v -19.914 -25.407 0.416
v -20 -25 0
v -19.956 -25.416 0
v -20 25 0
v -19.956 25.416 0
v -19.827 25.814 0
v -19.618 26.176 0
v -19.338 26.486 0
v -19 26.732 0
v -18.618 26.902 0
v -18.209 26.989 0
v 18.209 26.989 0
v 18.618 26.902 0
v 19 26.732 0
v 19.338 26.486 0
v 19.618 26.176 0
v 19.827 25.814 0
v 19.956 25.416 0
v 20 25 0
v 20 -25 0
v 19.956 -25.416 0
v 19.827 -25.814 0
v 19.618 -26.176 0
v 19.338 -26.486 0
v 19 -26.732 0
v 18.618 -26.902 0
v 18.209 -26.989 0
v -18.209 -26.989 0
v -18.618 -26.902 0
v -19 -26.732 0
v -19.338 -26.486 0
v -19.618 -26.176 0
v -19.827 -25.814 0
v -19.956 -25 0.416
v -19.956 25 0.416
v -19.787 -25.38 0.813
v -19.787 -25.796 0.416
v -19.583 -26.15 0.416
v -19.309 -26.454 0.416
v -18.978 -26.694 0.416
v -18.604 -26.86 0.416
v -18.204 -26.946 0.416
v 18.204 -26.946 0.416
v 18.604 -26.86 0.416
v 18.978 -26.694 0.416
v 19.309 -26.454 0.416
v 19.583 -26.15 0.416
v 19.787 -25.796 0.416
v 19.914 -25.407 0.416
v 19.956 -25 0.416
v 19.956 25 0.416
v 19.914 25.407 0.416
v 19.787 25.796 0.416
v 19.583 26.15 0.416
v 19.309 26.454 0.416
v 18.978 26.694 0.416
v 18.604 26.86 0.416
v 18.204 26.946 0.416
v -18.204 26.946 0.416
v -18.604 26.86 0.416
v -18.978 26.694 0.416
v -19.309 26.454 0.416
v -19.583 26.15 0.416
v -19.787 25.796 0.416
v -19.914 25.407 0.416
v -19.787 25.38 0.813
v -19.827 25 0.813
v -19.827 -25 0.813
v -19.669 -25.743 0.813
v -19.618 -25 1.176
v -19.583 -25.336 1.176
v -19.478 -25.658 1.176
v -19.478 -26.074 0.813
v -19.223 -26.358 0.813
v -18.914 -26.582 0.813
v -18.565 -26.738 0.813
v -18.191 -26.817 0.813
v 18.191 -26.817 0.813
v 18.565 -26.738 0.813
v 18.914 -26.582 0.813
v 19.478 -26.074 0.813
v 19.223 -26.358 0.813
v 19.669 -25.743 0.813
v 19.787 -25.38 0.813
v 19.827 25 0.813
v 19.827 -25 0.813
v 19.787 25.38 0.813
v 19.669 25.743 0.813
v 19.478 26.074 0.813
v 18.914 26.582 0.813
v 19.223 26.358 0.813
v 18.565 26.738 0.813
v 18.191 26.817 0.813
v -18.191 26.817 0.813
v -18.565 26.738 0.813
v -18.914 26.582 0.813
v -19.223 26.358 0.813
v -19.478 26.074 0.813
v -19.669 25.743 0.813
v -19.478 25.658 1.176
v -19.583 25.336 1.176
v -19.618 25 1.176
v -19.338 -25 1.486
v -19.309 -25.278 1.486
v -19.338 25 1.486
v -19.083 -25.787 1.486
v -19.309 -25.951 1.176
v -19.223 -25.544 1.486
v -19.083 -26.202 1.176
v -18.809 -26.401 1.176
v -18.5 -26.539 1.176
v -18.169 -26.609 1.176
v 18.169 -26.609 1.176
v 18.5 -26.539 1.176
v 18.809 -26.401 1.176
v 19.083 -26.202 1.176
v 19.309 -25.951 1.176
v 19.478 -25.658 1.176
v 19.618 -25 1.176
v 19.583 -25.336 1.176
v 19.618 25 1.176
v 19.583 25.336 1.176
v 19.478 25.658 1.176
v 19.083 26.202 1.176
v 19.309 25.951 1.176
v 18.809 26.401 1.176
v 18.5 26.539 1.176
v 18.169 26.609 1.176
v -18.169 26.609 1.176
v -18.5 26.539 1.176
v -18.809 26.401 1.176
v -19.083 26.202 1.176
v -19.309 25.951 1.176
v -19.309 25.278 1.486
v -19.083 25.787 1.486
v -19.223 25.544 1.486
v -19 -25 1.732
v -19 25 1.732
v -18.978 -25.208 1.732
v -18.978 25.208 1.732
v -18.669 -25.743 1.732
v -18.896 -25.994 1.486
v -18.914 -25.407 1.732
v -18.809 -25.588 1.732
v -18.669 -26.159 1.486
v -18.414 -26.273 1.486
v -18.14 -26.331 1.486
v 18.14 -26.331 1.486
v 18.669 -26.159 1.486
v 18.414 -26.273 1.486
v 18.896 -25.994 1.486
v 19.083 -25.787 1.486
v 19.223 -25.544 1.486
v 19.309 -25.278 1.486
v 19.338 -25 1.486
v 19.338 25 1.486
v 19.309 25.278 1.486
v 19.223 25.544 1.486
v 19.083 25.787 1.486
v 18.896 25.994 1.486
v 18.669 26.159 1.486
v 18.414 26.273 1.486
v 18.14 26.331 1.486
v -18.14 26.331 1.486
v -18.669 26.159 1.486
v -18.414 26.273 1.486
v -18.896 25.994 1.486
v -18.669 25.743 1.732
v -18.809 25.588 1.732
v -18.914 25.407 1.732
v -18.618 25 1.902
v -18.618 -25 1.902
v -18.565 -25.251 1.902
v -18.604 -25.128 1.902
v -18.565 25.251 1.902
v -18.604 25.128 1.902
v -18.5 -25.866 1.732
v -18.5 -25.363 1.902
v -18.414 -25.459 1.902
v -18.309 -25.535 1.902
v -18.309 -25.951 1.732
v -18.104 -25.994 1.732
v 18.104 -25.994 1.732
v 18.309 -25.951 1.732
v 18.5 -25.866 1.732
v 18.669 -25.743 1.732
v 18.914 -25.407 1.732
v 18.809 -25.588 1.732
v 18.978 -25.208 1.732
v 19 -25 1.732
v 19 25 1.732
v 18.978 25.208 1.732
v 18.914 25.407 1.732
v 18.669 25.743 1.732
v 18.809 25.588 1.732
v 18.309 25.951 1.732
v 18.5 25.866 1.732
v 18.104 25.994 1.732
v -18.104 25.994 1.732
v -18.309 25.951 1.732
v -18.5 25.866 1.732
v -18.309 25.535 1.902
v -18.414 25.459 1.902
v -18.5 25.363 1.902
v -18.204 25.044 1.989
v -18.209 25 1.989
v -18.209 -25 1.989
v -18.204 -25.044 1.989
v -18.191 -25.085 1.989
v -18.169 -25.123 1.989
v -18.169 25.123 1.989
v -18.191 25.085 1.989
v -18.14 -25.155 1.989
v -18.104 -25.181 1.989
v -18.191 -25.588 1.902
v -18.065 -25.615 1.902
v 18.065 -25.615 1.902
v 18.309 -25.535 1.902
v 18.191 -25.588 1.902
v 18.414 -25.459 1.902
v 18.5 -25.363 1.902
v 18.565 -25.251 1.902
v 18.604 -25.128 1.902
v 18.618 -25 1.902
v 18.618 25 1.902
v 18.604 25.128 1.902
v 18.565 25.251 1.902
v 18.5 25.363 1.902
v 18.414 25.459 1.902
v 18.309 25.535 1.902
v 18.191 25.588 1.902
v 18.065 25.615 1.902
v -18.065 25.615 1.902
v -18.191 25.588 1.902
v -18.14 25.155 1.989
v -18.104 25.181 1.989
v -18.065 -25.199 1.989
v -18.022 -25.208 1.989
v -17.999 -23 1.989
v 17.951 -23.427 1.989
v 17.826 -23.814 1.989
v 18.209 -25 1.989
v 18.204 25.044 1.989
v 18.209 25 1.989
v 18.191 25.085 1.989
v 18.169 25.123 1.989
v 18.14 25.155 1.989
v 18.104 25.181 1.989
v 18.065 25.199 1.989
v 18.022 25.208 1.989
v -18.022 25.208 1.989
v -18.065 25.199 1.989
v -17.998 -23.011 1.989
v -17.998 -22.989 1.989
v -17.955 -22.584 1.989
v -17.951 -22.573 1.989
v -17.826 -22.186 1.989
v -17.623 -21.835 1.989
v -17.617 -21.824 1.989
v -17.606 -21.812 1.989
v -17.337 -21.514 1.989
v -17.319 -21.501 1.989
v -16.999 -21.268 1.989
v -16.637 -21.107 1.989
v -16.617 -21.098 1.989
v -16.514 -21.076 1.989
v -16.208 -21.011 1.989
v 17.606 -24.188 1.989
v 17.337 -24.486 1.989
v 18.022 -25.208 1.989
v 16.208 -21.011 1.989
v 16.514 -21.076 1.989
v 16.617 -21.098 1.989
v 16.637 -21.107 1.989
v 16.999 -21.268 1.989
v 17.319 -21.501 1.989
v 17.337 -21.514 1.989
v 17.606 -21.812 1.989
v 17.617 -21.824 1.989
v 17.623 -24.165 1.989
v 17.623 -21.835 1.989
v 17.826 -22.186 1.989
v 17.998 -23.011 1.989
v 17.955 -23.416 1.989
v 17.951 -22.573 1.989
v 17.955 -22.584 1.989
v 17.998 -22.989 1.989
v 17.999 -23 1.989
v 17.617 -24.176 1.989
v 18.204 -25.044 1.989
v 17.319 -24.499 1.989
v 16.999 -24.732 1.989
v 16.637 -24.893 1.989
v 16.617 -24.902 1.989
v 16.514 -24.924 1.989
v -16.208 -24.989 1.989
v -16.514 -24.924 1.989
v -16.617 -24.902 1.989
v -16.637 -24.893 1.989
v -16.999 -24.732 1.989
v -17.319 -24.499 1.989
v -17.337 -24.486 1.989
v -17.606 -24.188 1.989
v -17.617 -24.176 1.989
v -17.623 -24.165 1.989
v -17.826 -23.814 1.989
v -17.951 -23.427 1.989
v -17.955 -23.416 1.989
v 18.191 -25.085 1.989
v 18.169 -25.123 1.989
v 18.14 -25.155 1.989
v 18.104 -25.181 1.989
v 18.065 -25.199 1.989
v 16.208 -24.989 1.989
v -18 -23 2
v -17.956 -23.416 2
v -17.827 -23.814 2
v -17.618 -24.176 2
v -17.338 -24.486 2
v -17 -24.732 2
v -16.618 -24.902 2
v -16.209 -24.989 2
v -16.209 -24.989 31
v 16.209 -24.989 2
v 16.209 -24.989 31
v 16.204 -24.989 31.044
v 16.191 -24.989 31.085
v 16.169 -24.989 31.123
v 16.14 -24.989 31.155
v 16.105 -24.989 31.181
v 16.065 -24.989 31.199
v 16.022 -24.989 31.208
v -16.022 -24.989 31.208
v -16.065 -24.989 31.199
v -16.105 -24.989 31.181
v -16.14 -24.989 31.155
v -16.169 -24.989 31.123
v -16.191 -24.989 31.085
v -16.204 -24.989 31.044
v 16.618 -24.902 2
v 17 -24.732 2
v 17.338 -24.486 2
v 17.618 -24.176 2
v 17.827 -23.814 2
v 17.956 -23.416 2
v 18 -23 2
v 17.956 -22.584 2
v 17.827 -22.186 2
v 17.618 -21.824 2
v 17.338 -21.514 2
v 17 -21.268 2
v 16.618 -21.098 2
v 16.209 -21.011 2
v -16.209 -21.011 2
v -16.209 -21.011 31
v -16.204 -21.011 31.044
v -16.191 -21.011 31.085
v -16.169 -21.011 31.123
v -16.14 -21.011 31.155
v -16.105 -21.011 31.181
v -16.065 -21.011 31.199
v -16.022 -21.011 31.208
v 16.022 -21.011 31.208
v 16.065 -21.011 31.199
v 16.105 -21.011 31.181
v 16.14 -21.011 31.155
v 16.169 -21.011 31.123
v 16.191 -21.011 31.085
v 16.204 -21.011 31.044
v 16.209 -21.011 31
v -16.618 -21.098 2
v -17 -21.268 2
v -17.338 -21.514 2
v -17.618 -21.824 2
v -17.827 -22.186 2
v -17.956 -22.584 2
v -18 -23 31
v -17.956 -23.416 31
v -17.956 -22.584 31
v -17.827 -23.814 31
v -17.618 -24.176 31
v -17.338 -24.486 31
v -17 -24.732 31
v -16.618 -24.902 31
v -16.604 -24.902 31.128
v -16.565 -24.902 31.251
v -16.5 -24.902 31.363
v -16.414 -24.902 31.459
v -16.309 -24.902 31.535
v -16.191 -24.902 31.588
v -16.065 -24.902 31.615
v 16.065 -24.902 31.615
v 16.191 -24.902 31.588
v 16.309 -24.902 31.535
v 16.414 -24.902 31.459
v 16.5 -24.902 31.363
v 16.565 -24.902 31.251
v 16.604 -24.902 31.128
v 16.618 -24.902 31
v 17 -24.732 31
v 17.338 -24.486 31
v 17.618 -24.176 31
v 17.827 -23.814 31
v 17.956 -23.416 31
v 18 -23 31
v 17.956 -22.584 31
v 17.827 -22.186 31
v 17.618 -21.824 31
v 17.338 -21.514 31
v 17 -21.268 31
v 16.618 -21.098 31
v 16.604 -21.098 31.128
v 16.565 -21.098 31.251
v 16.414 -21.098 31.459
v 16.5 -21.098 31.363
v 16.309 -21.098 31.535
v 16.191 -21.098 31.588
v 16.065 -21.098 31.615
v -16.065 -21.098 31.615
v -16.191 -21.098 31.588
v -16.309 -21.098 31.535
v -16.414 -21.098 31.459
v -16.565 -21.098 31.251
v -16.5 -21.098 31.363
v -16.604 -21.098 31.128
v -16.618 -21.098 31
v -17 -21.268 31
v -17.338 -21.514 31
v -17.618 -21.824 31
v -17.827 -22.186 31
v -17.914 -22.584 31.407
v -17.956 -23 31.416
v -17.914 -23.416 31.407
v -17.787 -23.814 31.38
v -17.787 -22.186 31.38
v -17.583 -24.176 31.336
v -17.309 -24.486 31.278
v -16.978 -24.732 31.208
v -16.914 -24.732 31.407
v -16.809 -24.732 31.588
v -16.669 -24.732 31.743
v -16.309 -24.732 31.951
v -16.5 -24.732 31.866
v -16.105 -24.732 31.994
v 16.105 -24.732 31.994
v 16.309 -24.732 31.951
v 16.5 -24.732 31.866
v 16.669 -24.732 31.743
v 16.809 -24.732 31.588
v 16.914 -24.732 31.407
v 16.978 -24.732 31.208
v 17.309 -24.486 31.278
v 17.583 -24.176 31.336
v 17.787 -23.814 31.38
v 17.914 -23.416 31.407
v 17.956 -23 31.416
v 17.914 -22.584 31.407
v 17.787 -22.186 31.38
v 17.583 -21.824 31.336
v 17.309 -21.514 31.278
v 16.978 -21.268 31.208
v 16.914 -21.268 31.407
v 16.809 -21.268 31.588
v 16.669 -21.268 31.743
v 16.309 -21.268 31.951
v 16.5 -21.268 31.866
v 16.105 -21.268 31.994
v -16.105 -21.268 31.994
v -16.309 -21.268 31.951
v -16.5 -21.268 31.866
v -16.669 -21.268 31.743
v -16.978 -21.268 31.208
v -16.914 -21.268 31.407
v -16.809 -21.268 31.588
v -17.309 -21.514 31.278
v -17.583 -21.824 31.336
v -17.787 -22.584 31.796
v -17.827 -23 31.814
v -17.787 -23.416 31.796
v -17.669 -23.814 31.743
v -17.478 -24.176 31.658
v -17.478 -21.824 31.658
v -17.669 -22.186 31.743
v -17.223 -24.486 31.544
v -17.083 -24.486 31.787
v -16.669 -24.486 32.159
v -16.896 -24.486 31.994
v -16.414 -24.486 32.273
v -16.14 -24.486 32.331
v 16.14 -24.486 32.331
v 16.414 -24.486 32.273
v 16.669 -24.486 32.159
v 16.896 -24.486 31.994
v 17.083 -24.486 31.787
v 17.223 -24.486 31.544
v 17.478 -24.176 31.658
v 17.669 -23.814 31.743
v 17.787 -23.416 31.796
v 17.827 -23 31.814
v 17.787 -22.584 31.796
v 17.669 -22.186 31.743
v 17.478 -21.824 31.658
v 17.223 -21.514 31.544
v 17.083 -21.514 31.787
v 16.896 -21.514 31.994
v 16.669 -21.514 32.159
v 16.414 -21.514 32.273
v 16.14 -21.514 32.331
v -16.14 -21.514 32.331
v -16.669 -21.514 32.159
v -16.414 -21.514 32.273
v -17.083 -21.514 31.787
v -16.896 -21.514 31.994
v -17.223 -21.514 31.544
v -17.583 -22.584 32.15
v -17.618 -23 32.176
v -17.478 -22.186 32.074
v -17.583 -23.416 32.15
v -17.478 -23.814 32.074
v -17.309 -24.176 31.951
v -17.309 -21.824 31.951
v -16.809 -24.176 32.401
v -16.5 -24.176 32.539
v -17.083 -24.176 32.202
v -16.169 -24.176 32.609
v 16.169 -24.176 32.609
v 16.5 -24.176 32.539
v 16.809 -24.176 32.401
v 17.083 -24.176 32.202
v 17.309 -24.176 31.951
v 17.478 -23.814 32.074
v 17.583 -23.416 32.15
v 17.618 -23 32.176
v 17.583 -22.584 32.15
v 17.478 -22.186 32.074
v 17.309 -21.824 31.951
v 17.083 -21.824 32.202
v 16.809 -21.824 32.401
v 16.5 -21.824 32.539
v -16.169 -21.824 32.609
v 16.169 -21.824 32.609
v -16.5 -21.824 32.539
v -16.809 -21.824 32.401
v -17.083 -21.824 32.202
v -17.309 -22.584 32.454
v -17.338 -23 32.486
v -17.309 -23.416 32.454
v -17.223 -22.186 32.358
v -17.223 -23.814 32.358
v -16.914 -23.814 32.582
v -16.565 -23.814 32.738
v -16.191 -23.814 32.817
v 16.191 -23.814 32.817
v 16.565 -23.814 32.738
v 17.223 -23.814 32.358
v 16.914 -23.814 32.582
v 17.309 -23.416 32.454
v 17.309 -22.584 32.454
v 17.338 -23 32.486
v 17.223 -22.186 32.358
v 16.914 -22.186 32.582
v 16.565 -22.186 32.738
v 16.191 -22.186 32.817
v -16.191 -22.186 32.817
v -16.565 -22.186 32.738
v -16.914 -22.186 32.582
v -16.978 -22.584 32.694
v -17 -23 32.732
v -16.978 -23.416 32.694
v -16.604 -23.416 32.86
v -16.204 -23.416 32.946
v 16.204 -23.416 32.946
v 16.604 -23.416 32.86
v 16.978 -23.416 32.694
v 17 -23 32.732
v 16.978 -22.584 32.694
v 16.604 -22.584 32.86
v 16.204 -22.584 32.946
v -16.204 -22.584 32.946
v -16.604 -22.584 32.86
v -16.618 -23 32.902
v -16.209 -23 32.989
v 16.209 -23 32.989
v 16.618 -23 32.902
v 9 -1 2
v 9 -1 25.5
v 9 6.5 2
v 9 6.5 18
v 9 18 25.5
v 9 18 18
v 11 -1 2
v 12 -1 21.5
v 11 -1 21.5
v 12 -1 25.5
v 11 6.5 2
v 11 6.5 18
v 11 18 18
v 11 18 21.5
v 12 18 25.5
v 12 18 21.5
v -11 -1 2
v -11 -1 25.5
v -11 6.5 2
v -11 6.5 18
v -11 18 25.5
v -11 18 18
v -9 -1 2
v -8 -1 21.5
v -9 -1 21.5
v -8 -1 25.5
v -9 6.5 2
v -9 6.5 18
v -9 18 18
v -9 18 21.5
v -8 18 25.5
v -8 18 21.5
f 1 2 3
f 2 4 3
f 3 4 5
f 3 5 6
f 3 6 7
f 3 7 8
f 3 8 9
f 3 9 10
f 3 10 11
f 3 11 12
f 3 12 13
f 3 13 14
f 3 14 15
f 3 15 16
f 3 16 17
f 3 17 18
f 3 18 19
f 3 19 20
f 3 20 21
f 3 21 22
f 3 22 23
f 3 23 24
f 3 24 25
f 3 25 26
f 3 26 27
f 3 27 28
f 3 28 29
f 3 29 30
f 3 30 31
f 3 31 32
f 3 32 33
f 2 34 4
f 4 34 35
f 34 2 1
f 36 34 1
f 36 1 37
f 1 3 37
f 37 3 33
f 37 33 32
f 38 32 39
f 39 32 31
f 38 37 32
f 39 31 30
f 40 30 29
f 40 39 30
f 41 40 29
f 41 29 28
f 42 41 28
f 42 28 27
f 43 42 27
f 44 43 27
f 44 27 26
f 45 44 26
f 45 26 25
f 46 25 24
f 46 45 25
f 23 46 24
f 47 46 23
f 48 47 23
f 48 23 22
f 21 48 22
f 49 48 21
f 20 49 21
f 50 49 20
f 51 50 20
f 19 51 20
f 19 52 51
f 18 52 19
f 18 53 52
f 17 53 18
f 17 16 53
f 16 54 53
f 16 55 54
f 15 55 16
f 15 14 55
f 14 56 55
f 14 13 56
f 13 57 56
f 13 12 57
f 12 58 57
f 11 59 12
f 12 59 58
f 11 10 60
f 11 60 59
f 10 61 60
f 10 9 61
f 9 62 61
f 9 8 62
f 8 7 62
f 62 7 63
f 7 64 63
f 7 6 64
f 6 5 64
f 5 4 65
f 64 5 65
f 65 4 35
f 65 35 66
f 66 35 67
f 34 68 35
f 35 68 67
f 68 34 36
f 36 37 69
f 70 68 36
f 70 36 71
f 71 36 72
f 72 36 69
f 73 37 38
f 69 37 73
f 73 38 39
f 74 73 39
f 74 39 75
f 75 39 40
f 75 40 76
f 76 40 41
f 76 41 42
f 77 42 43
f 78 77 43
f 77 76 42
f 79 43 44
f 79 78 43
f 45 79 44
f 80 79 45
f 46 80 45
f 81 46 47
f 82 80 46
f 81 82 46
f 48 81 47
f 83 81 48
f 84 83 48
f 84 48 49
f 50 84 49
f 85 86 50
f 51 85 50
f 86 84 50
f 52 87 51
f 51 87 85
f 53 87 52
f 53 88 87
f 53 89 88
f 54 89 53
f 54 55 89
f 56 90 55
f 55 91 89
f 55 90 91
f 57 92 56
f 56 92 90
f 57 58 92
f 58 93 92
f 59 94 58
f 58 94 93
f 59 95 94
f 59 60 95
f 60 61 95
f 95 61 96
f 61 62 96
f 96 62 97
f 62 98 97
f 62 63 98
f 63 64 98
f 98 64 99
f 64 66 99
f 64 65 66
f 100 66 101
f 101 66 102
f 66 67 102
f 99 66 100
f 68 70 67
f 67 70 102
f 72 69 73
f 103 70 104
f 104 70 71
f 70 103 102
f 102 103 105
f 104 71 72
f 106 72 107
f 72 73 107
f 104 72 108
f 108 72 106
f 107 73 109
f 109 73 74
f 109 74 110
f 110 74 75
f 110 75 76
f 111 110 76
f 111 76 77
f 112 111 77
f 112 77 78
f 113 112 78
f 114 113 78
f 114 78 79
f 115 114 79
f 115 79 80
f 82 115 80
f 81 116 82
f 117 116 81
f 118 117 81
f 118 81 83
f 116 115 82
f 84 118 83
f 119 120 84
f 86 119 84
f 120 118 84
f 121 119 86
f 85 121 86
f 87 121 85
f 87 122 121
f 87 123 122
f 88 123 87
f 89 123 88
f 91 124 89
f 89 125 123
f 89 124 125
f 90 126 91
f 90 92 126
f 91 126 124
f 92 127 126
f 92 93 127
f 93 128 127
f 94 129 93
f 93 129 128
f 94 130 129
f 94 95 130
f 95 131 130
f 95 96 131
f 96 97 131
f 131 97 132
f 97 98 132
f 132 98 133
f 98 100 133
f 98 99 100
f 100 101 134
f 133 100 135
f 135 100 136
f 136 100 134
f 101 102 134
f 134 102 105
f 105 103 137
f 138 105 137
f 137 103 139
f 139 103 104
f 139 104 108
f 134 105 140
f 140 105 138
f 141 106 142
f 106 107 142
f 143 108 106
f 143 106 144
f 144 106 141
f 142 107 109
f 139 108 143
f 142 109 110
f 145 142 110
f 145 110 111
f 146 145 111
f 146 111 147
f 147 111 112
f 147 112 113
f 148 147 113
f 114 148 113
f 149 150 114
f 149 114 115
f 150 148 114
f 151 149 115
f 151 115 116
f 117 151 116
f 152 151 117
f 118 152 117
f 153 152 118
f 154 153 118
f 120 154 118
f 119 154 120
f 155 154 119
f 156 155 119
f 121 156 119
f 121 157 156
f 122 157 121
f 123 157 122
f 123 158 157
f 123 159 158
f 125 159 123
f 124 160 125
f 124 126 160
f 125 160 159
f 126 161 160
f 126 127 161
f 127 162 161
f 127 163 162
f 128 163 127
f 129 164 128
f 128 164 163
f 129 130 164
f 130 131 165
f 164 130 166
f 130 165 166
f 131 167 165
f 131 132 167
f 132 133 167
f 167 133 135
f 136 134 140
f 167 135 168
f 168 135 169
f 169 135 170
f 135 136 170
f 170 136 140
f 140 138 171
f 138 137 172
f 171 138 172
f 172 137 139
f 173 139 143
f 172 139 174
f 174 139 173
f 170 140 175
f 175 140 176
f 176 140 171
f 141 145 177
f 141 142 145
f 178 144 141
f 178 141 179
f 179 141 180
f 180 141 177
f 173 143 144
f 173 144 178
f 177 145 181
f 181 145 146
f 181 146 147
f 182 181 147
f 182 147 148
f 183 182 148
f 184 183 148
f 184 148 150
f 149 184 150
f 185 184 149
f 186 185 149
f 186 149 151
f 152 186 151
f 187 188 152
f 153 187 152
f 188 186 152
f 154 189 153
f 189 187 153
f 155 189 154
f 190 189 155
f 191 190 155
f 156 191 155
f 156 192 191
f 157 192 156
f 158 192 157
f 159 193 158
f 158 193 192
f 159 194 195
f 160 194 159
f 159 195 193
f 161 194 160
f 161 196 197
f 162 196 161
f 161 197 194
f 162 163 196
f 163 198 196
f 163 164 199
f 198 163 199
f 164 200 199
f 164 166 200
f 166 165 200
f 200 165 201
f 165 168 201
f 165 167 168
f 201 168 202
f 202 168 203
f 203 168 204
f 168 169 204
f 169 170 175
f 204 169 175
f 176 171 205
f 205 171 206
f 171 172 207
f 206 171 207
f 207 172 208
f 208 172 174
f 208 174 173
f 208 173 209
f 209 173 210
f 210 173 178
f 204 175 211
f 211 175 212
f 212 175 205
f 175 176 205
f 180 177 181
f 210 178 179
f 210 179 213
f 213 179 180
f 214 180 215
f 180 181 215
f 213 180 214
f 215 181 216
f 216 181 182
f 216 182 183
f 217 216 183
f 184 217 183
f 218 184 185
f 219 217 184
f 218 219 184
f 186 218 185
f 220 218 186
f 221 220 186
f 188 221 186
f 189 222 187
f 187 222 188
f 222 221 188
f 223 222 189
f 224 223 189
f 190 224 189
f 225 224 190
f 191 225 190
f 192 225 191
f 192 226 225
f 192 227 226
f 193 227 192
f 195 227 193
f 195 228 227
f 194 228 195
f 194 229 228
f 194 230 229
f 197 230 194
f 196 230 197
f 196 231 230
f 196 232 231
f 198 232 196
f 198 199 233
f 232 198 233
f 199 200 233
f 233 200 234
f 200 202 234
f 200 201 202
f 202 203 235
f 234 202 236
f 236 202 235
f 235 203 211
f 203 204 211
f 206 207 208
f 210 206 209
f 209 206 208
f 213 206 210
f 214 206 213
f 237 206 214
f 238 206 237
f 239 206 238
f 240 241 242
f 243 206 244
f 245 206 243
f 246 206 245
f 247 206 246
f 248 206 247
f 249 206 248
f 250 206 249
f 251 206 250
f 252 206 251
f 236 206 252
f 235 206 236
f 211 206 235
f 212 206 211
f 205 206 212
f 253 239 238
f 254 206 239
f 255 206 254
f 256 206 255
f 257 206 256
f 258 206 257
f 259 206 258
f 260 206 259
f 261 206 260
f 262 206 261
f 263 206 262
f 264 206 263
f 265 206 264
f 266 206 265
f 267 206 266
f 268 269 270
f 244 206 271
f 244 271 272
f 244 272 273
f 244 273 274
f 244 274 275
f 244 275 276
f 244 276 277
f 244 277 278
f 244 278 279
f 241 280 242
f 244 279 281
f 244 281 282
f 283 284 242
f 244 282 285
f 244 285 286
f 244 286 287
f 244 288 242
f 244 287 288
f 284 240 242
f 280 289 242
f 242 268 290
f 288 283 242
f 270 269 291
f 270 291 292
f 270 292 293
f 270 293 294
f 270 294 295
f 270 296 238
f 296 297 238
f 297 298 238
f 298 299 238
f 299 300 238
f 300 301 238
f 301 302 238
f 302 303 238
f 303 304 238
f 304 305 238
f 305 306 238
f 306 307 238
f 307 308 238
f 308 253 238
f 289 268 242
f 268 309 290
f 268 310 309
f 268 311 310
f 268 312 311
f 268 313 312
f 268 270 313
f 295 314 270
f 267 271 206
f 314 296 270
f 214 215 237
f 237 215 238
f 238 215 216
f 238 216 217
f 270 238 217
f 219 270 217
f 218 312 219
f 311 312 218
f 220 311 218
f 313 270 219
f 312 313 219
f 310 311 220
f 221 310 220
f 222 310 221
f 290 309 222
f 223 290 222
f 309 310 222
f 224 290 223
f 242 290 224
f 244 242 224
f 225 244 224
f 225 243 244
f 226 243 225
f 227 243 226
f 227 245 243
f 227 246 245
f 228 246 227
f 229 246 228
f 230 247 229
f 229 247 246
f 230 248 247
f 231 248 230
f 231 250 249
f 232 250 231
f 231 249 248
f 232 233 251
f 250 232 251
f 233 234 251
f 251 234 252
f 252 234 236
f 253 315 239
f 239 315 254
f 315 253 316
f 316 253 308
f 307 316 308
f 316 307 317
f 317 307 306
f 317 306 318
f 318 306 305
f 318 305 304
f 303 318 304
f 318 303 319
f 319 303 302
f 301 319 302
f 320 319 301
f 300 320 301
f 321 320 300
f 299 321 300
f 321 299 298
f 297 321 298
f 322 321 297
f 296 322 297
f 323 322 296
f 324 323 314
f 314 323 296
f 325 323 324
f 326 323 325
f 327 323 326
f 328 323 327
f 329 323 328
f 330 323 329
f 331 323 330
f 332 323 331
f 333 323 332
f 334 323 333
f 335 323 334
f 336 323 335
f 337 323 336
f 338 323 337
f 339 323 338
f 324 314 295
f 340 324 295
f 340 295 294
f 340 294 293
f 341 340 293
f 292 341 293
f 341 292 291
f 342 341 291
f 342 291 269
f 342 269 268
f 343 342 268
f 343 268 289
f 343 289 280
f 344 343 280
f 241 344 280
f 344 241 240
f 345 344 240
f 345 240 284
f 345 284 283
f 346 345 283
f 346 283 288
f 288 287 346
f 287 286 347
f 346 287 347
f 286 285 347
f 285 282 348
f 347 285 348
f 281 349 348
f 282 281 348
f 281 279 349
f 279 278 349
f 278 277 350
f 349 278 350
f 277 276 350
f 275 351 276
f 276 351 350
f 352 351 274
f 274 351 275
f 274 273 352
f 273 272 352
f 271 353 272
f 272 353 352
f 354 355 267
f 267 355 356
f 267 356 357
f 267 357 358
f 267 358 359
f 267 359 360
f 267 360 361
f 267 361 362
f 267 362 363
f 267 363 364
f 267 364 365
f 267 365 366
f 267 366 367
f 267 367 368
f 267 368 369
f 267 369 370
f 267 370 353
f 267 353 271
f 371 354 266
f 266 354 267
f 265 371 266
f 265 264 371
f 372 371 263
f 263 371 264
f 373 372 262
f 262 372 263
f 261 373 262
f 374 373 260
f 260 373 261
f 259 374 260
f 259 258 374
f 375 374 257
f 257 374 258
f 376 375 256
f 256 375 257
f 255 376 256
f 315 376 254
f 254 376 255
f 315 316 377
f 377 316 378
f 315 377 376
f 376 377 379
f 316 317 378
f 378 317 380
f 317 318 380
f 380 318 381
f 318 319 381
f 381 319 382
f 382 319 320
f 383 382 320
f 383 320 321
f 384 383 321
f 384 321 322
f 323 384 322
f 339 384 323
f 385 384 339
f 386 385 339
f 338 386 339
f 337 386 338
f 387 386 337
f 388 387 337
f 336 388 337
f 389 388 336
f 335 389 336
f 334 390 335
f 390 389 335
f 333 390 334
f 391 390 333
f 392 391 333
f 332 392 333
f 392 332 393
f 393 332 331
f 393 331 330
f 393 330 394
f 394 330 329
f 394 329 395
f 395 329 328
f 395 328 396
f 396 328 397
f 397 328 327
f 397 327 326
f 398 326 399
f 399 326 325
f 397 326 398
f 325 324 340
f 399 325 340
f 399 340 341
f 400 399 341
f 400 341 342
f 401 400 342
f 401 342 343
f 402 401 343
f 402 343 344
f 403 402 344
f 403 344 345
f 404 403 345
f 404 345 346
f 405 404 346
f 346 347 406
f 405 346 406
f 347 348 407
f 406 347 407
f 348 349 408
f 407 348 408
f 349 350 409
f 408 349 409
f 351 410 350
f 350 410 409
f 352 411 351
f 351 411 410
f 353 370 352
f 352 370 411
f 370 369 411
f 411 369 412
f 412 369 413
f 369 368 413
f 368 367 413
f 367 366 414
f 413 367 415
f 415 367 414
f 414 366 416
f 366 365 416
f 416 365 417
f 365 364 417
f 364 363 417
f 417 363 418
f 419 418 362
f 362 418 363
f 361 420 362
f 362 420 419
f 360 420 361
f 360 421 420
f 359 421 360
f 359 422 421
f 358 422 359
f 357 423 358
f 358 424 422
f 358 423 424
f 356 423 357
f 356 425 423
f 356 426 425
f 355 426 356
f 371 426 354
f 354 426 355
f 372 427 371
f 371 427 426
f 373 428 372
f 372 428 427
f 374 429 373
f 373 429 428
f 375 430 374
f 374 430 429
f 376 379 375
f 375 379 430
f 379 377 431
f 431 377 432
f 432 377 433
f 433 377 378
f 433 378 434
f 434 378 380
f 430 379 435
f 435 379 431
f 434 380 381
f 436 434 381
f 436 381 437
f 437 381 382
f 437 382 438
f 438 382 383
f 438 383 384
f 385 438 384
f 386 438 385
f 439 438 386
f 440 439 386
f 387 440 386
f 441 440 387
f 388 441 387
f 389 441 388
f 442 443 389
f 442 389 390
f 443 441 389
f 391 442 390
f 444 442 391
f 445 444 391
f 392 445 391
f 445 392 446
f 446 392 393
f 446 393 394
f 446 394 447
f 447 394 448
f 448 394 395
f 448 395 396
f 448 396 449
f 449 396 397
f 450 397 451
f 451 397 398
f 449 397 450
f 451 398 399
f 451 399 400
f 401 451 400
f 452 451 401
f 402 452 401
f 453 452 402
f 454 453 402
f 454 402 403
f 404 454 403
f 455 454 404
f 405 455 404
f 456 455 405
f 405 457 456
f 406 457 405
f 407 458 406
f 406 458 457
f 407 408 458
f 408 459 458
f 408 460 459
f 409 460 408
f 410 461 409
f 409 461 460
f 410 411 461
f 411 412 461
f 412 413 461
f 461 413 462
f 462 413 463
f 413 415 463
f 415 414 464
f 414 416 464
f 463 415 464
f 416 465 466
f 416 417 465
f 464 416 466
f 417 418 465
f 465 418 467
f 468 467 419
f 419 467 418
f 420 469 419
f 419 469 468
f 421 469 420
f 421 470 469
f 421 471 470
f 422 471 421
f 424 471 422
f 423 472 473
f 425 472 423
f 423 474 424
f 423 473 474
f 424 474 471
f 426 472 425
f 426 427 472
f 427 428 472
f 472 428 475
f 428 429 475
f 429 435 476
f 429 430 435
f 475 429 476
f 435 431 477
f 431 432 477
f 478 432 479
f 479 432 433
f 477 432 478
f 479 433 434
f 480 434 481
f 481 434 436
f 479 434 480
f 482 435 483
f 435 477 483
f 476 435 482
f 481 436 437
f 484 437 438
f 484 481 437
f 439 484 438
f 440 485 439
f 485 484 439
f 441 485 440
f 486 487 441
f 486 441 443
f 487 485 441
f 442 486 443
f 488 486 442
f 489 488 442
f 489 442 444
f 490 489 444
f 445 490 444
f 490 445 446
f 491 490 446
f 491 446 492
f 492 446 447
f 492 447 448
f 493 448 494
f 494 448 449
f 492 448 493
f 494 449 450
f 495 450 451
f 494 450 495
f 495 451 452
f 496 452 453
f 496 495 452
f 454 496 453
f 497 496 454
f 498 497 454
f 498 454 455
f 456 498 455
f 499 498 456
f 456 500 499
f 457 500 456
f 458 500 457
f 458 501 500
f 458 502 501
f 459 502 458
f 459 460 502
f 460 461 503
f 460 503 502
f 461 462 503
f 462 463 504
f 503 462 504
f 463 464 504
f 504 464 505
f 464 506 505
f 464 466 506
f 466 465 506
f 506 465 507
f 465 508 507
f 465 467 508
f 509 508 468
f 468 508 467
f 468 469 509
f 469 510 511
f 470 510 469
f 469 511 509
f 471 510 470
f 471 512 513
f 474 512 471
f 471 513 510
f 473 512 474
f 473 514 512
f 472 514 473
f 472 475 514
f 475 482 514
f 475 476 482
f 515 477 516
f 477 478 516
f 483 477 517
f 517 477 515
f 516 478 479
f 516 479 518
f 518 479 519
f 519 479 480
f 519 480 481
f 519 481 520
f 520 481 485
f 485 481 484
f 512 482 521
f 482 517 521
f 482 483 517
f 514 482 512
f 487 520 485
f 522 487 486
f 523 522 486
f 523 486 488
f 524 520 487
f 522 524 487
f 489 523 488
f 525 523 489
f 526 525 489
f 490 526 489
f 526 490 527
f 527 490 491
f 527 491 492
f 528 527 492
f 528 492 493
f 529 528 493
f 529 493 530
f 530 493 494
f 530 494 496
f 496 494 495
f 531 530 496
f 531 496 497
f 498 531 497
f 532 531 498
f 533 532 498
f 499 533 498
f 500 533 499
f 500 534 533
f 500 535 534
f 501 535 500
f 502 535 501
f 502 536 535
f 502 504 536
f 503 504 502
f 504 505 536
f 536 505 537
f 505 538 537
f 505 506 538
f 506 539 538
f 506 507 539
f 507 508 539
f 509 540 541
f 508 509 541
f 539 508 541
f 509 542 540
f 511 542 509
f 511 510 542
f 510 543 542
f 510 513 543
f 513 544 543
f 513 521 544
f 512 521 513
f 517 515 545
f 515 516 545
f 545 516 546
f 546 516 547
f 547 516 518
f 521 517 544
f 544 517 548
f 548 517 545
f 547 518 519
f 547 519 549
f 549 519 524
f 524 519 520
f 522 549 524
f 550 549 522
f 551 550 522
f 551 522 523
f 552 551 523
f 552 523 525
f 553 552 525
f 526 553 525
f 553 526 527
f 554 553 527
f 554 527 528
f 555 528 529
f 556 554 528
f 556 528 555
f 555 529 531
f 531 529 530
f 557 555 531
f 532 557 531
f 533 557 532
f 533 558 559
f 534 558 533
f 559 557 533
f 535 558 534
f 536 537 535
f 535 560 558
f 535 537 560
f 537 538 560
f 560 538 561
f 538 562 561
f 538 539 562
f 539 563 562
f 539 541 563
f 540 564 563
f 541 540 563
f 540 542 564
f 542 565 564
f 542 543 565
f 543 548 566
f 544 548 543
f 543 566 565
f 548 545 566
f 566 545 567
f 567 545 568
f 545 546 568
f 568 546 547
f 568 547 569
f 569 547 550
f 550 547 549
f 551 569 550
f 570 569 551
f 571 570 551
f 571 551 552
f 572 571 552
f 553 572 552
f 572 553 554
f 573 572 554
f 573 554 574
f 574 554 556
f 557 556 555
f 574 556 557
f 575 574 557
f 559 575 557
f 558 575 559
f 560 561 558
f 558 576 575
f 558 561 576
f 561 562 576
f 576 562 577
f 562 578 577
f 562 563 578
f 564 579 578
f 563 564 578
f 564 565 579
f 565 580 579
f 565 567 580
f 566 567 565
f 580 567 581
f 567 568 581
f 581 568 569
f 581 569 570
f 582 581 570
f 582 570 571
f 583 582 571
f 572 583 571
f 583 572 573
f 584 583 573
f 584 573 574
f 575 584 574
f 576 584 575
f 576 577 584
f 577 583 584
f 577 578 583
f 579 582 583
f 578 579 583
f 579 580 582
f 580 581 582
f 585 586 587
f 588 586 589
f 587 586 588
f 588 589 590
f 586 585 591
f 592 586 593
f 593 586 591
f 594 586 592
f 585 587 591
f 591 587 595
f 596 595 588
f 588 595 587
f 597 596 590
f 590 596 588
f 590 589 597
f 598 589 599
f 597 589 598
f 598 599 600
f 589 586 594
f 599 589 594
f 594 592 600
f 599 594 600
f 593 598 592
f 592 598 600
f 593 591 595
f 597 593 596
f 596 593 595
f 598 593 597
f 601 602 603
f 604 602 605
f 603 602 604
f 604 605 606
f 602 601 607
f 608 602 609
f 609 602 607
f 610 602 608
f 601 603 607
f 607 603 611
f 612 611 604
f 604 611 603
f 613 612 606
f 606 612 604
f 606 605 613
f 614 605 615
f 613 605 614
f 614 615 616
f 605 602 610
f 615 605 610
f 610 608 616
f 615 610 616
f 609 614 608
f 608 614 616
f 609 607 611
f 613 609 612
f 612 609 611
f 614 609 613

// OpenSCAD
/*
 * Brown Orla-B brush holder (wall-attached).
 */
$fn=30;

corrners = [ [-1,-1,0], [-1,+1,0], [+1,-1,0], [+1,+1,0] ];

// wall-mounted part
module wall(tr, size)
{
  translate(tr)
    hull()
      difference()
      {
        for(t = corrners)
        {
          assign( off = [size[0]/2*t[0], size[1]/2*t[1], 0*t[2]] )
            translate(off)
              sphere(size[2]);
        };
        translate([0,0,-size[2]]) cube(2*size, center=true);
      }
}

// water drops catching plane
module plane(tr, size)
{
  rotate([90,0,0])
    translate(tr)
      hull()
        for(t = corrners)
        {
          assign( off = [size[0]/2*t[0], size[1]/2*t[1], 0*t[2]] )
            translate(off)
              sphere(size[2]);
        };
}

// element for holding a single brush
module holder(tr, size)
{
  translate(tr)
  {
    difference()
    {
      cube(size);
      translate([0,7.5,0])
        cube([size[0],size[1]-7.5,size[2]-7.5]);
    }
    translate([size[0],0,size[2]-(7.5-3.5)])
      cube([3-2,size[1],7.5-3.5]);
  }
}


wall([0,0,0], [36,50,2]);
plane([0,16.5,50/2-2], [36-2*2,29,2]);
holder([20/2-1,-1,2], [2,19,23.5]);
holder([-20/2-1,-1,2], [2,19,23.5]);
